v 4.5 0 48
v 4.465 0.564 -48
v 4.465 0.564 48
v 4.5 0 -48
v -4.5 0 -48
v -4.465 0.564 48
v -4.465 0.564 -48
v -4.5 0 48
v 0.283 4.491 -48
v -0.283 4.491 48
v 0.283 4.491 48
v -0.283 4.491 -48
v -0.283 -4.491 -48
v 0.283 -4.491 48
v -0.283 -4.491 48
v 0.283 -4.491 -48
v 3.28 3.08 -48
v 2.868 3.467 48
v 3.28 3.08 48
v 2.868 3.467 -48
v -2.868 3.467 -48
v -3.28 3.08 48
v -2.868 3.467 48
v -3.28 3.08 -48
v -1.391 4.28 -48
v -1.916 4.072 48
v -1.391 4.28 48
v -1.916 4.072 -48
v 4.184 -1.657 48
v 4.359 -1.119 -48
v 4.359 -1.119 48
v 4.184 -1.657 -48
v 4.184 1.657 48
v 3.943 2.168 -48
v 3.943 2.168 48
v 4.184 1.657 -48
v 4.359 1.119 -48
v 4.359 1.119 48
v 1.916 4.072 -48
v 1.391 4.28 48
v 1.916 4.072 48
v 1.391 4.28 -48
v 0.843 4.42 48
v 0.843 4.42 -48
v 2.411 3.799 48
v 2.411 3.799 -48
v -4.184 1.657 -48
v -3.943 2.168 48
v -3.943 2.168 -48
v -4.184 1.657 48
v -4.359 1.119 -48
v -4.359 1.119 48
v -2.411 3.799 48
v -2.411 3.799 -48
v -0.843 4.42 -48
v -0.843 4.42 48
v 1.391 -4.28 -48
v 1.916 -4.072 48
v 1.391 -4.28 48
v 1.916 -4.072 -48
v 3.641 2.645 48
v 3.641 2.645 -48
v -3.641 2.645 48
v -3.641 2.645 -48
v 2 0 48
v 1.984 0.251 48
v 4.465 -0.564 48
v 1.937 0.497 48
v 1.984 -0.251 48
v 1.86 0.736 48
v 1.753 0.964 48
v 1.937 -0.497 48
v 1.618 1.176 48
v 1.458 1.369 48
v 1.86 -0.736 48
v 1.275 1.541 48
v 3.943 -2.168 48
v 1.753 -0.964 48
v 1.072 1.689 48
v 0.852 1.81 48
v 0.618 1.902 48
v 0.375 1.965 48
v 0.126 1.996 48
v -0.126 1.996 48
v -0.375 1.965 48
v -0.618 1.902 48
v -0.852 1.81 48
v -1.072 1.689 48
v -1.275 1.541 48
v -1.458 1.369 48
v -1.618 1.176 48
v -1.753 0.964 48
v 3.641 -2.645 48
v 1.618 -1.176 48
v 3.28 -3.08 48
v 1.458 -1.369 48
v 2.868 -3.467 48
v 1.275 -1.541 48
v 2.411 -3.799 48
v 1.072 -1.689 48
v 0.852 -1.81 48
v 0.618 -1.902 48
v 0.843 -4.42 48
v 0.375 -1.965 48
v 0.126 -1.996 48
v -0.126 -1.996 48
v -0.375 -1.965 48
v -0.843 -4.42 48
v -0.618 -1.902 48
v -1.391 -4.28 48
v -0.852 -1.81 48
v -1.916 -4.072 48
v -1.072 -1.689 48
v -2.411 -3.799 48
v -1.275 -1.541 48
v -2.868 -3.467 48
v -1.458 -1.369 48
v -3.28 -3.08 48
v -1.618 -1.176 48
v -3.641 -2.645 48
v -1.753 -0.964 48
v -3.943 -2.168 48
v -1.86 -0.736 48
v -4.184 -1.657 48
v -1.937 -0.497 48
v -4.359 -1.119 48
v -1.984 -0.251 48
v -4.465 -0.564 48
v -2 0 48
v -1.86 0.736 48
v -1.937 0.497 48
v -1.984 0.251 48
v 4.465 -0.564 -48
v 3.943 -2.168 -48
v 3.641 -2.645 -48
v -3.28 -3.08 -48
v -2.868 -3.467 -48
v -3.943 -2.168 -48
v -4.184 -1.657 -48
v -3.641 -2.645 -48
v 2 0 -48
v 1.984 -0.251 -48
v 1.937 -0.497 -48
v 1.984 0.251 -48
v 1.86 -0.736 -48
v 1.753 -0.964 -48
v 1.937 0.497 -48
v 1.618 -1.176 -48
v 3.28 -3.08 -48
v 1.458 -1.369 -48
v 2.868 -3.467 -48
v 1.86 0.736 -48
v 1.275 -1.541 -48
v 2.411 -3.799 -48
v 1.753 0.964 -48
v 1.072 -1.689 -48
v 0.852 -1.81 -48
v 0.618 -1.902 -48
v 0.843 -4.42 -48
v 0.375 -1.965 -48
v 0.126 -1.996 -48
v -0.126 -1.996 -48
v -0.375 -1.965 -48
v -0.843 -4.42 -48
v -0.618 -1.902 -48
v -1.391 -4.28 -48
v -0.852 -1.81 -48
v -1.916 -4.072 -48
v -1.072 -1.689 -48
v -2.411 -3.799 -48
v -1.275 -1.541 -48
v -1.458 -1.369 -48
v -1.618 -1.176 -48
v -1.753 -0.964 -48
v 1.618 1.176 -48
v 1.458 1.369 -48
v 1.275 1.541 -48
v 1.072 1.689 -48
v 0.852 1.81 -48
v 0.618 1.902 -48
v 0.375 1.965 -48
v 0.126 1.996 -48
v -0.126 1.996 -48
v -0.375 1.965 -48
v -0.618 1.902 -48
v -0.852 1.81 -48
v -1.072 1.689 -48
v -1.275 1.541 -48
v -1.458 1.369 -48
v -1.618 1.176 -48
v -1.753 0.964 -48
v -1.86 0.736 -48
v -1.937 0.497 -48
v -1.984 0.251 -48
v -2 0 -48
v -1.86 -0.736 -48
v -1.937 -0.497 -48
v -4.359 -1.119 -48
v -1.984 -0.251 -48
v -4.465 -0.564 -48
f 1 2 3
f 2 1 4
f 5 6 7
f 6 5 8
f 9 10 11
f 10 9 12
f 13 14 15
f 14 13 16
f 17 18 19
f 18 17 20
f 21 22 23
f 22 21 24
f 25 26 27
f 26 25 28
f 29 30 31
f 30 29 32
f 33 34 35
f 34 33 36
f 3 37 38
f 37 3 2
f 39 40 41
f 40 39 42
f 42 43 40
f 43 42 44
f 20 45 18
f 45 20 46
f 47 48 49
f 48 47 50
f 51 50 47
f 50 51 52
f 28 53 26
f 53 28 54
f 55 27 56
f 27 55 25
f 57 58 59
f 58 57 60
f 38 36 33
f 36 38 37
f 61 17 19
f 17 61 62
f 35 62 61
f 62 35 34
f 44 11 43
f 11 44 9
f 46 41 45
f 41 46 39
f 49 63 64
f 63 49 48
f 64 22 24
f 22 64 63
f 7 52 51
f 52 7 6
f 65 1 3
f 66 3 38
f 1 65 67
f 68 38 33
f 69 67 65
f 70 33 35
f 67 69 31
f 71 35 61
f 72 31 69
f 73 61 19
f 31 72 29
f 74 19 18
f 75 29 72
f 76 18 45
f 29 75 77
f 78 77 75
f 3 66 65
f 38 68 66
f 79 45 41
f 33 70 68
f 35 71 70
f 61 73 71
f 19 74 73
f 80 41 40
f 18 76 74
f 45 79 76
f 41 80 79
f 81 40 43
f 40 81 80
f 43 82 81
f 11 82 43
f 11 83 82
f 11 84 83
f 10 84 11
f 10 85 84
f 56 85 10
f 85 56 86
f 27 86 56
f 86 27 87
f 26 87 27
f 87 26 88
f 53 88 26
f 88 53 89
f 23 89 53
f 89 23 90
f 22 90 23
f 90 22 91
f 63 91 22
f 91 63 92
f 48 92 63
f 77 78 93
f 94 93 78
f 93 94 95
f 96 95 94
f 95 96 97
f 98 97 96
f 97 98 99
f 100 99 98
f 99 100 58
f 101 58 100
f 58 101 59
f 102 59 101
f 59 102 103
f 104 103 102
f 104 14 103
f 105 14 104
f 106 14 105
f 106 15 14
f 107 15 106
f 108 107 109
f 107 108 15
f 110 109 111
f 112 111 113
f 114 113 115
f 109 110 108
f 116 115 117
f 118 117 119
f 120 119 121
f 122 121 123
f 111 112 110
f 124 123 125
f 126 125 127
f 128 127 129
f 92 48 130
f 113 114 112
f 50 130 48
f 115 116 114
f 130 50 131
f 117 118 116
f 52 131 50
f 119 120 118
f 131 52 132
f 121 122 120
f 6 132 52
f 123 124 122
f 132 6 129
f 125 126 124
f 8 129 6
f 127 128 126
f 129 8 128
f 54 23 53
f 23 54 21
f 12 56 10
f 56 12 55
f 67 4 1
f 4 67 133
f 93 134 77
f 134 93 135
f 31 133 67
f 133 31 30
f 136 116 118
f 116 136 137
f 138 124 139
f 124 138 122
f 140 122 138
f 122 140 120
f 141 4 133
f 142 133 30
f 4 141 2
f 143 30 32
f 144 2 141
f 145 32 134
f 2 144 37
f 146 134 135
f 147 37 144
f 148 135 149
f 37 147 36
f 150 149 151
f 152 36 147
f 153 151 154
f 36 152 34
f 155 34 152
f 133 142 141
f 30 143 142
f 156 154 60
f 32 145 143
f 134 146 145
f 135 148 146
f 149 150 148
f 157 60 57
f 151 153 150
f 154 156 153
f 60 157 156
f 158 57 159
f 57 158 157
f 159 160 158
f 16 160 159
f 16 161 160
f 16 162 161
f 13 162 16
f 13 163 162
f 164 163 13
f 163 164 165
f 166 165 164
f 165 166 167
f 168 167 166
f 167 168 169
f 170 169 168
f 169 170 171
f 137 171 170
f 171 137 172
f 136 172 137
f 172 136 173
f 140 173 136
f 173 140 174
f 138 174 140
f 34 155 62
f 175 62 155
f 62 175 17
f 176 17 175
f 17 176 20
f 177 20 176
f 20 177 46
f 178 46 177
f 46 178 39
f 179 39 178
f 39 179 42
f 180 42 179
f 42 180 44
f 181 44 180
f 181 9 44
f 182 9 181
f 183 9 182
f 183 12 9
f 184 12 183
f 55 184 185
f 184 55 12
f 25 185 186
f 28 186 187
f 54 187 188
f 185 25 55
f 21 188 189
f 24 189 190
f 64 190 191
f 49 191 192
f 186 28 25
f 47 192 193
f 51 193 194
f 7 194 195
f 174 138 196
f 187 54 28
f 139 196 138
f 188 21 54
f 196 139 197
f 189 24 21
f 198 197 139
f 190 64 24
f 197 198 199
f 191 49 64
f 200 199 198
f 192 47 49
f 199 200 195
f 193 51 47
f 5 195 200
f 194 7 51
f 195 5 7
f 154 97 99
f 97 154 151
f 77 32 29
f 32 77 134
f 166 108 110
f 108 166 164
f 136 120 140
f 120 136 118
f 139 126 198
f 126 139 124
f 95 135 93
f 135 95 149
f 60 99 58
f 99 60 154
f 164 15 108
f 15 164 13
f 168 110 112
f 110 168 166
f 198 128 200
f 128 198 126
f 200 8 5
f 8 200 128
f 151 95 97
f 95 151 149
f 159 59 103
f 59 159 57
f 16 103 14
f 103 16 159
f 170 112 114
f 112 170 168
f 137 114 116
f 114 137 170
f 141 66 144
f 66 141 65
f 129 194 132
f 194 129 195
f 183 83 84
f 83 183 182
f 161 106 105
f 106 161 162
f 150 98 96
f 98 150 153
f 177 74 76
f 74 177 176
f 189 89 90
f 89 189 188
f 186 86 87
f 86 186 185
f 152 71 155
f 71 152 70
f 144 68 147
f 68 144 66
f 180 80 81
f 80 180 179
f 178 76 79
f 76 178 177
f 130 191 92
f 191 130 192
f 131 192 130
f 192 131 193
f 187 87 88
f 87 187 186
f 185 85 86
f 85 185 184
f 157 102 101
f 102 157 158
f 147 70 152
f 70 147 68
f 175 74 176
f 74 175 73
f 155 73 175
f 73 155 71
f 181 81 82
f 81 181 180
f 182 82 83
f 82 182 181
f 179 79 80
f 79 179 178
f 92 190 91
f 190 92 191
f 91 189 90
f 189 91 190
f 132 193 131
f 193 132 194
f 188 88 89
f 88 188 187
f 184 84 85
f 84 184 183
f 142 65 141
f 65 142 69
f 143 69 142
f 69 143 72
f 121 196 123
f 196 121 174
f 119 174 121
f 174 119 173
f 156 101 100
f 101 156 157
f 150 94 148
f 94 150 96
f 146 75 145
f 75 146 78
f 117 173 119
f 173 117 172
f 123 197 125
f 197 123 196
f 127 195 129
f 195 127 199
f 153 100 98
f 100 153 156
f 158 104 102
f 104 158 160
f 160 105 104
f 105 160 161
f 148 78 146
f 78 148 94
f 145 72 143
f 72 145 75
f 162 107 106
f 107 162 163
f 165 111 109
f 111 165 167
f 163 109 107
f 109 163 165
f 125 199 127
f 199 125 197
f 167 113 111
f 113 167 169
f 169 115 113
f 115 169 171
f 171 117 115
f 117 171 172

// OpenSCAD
$fn = 50;


difference() {
	union() {
		translate(v = [0, 0, -48.0000000000]) {
			cylinder(h = 96, r = 4.5000000000);
		}
	}
	union() {
		translate(v = [0, 0, -100.0000000000]) {
			cylinder(h = 200, r = 2);
		}
	}
}
